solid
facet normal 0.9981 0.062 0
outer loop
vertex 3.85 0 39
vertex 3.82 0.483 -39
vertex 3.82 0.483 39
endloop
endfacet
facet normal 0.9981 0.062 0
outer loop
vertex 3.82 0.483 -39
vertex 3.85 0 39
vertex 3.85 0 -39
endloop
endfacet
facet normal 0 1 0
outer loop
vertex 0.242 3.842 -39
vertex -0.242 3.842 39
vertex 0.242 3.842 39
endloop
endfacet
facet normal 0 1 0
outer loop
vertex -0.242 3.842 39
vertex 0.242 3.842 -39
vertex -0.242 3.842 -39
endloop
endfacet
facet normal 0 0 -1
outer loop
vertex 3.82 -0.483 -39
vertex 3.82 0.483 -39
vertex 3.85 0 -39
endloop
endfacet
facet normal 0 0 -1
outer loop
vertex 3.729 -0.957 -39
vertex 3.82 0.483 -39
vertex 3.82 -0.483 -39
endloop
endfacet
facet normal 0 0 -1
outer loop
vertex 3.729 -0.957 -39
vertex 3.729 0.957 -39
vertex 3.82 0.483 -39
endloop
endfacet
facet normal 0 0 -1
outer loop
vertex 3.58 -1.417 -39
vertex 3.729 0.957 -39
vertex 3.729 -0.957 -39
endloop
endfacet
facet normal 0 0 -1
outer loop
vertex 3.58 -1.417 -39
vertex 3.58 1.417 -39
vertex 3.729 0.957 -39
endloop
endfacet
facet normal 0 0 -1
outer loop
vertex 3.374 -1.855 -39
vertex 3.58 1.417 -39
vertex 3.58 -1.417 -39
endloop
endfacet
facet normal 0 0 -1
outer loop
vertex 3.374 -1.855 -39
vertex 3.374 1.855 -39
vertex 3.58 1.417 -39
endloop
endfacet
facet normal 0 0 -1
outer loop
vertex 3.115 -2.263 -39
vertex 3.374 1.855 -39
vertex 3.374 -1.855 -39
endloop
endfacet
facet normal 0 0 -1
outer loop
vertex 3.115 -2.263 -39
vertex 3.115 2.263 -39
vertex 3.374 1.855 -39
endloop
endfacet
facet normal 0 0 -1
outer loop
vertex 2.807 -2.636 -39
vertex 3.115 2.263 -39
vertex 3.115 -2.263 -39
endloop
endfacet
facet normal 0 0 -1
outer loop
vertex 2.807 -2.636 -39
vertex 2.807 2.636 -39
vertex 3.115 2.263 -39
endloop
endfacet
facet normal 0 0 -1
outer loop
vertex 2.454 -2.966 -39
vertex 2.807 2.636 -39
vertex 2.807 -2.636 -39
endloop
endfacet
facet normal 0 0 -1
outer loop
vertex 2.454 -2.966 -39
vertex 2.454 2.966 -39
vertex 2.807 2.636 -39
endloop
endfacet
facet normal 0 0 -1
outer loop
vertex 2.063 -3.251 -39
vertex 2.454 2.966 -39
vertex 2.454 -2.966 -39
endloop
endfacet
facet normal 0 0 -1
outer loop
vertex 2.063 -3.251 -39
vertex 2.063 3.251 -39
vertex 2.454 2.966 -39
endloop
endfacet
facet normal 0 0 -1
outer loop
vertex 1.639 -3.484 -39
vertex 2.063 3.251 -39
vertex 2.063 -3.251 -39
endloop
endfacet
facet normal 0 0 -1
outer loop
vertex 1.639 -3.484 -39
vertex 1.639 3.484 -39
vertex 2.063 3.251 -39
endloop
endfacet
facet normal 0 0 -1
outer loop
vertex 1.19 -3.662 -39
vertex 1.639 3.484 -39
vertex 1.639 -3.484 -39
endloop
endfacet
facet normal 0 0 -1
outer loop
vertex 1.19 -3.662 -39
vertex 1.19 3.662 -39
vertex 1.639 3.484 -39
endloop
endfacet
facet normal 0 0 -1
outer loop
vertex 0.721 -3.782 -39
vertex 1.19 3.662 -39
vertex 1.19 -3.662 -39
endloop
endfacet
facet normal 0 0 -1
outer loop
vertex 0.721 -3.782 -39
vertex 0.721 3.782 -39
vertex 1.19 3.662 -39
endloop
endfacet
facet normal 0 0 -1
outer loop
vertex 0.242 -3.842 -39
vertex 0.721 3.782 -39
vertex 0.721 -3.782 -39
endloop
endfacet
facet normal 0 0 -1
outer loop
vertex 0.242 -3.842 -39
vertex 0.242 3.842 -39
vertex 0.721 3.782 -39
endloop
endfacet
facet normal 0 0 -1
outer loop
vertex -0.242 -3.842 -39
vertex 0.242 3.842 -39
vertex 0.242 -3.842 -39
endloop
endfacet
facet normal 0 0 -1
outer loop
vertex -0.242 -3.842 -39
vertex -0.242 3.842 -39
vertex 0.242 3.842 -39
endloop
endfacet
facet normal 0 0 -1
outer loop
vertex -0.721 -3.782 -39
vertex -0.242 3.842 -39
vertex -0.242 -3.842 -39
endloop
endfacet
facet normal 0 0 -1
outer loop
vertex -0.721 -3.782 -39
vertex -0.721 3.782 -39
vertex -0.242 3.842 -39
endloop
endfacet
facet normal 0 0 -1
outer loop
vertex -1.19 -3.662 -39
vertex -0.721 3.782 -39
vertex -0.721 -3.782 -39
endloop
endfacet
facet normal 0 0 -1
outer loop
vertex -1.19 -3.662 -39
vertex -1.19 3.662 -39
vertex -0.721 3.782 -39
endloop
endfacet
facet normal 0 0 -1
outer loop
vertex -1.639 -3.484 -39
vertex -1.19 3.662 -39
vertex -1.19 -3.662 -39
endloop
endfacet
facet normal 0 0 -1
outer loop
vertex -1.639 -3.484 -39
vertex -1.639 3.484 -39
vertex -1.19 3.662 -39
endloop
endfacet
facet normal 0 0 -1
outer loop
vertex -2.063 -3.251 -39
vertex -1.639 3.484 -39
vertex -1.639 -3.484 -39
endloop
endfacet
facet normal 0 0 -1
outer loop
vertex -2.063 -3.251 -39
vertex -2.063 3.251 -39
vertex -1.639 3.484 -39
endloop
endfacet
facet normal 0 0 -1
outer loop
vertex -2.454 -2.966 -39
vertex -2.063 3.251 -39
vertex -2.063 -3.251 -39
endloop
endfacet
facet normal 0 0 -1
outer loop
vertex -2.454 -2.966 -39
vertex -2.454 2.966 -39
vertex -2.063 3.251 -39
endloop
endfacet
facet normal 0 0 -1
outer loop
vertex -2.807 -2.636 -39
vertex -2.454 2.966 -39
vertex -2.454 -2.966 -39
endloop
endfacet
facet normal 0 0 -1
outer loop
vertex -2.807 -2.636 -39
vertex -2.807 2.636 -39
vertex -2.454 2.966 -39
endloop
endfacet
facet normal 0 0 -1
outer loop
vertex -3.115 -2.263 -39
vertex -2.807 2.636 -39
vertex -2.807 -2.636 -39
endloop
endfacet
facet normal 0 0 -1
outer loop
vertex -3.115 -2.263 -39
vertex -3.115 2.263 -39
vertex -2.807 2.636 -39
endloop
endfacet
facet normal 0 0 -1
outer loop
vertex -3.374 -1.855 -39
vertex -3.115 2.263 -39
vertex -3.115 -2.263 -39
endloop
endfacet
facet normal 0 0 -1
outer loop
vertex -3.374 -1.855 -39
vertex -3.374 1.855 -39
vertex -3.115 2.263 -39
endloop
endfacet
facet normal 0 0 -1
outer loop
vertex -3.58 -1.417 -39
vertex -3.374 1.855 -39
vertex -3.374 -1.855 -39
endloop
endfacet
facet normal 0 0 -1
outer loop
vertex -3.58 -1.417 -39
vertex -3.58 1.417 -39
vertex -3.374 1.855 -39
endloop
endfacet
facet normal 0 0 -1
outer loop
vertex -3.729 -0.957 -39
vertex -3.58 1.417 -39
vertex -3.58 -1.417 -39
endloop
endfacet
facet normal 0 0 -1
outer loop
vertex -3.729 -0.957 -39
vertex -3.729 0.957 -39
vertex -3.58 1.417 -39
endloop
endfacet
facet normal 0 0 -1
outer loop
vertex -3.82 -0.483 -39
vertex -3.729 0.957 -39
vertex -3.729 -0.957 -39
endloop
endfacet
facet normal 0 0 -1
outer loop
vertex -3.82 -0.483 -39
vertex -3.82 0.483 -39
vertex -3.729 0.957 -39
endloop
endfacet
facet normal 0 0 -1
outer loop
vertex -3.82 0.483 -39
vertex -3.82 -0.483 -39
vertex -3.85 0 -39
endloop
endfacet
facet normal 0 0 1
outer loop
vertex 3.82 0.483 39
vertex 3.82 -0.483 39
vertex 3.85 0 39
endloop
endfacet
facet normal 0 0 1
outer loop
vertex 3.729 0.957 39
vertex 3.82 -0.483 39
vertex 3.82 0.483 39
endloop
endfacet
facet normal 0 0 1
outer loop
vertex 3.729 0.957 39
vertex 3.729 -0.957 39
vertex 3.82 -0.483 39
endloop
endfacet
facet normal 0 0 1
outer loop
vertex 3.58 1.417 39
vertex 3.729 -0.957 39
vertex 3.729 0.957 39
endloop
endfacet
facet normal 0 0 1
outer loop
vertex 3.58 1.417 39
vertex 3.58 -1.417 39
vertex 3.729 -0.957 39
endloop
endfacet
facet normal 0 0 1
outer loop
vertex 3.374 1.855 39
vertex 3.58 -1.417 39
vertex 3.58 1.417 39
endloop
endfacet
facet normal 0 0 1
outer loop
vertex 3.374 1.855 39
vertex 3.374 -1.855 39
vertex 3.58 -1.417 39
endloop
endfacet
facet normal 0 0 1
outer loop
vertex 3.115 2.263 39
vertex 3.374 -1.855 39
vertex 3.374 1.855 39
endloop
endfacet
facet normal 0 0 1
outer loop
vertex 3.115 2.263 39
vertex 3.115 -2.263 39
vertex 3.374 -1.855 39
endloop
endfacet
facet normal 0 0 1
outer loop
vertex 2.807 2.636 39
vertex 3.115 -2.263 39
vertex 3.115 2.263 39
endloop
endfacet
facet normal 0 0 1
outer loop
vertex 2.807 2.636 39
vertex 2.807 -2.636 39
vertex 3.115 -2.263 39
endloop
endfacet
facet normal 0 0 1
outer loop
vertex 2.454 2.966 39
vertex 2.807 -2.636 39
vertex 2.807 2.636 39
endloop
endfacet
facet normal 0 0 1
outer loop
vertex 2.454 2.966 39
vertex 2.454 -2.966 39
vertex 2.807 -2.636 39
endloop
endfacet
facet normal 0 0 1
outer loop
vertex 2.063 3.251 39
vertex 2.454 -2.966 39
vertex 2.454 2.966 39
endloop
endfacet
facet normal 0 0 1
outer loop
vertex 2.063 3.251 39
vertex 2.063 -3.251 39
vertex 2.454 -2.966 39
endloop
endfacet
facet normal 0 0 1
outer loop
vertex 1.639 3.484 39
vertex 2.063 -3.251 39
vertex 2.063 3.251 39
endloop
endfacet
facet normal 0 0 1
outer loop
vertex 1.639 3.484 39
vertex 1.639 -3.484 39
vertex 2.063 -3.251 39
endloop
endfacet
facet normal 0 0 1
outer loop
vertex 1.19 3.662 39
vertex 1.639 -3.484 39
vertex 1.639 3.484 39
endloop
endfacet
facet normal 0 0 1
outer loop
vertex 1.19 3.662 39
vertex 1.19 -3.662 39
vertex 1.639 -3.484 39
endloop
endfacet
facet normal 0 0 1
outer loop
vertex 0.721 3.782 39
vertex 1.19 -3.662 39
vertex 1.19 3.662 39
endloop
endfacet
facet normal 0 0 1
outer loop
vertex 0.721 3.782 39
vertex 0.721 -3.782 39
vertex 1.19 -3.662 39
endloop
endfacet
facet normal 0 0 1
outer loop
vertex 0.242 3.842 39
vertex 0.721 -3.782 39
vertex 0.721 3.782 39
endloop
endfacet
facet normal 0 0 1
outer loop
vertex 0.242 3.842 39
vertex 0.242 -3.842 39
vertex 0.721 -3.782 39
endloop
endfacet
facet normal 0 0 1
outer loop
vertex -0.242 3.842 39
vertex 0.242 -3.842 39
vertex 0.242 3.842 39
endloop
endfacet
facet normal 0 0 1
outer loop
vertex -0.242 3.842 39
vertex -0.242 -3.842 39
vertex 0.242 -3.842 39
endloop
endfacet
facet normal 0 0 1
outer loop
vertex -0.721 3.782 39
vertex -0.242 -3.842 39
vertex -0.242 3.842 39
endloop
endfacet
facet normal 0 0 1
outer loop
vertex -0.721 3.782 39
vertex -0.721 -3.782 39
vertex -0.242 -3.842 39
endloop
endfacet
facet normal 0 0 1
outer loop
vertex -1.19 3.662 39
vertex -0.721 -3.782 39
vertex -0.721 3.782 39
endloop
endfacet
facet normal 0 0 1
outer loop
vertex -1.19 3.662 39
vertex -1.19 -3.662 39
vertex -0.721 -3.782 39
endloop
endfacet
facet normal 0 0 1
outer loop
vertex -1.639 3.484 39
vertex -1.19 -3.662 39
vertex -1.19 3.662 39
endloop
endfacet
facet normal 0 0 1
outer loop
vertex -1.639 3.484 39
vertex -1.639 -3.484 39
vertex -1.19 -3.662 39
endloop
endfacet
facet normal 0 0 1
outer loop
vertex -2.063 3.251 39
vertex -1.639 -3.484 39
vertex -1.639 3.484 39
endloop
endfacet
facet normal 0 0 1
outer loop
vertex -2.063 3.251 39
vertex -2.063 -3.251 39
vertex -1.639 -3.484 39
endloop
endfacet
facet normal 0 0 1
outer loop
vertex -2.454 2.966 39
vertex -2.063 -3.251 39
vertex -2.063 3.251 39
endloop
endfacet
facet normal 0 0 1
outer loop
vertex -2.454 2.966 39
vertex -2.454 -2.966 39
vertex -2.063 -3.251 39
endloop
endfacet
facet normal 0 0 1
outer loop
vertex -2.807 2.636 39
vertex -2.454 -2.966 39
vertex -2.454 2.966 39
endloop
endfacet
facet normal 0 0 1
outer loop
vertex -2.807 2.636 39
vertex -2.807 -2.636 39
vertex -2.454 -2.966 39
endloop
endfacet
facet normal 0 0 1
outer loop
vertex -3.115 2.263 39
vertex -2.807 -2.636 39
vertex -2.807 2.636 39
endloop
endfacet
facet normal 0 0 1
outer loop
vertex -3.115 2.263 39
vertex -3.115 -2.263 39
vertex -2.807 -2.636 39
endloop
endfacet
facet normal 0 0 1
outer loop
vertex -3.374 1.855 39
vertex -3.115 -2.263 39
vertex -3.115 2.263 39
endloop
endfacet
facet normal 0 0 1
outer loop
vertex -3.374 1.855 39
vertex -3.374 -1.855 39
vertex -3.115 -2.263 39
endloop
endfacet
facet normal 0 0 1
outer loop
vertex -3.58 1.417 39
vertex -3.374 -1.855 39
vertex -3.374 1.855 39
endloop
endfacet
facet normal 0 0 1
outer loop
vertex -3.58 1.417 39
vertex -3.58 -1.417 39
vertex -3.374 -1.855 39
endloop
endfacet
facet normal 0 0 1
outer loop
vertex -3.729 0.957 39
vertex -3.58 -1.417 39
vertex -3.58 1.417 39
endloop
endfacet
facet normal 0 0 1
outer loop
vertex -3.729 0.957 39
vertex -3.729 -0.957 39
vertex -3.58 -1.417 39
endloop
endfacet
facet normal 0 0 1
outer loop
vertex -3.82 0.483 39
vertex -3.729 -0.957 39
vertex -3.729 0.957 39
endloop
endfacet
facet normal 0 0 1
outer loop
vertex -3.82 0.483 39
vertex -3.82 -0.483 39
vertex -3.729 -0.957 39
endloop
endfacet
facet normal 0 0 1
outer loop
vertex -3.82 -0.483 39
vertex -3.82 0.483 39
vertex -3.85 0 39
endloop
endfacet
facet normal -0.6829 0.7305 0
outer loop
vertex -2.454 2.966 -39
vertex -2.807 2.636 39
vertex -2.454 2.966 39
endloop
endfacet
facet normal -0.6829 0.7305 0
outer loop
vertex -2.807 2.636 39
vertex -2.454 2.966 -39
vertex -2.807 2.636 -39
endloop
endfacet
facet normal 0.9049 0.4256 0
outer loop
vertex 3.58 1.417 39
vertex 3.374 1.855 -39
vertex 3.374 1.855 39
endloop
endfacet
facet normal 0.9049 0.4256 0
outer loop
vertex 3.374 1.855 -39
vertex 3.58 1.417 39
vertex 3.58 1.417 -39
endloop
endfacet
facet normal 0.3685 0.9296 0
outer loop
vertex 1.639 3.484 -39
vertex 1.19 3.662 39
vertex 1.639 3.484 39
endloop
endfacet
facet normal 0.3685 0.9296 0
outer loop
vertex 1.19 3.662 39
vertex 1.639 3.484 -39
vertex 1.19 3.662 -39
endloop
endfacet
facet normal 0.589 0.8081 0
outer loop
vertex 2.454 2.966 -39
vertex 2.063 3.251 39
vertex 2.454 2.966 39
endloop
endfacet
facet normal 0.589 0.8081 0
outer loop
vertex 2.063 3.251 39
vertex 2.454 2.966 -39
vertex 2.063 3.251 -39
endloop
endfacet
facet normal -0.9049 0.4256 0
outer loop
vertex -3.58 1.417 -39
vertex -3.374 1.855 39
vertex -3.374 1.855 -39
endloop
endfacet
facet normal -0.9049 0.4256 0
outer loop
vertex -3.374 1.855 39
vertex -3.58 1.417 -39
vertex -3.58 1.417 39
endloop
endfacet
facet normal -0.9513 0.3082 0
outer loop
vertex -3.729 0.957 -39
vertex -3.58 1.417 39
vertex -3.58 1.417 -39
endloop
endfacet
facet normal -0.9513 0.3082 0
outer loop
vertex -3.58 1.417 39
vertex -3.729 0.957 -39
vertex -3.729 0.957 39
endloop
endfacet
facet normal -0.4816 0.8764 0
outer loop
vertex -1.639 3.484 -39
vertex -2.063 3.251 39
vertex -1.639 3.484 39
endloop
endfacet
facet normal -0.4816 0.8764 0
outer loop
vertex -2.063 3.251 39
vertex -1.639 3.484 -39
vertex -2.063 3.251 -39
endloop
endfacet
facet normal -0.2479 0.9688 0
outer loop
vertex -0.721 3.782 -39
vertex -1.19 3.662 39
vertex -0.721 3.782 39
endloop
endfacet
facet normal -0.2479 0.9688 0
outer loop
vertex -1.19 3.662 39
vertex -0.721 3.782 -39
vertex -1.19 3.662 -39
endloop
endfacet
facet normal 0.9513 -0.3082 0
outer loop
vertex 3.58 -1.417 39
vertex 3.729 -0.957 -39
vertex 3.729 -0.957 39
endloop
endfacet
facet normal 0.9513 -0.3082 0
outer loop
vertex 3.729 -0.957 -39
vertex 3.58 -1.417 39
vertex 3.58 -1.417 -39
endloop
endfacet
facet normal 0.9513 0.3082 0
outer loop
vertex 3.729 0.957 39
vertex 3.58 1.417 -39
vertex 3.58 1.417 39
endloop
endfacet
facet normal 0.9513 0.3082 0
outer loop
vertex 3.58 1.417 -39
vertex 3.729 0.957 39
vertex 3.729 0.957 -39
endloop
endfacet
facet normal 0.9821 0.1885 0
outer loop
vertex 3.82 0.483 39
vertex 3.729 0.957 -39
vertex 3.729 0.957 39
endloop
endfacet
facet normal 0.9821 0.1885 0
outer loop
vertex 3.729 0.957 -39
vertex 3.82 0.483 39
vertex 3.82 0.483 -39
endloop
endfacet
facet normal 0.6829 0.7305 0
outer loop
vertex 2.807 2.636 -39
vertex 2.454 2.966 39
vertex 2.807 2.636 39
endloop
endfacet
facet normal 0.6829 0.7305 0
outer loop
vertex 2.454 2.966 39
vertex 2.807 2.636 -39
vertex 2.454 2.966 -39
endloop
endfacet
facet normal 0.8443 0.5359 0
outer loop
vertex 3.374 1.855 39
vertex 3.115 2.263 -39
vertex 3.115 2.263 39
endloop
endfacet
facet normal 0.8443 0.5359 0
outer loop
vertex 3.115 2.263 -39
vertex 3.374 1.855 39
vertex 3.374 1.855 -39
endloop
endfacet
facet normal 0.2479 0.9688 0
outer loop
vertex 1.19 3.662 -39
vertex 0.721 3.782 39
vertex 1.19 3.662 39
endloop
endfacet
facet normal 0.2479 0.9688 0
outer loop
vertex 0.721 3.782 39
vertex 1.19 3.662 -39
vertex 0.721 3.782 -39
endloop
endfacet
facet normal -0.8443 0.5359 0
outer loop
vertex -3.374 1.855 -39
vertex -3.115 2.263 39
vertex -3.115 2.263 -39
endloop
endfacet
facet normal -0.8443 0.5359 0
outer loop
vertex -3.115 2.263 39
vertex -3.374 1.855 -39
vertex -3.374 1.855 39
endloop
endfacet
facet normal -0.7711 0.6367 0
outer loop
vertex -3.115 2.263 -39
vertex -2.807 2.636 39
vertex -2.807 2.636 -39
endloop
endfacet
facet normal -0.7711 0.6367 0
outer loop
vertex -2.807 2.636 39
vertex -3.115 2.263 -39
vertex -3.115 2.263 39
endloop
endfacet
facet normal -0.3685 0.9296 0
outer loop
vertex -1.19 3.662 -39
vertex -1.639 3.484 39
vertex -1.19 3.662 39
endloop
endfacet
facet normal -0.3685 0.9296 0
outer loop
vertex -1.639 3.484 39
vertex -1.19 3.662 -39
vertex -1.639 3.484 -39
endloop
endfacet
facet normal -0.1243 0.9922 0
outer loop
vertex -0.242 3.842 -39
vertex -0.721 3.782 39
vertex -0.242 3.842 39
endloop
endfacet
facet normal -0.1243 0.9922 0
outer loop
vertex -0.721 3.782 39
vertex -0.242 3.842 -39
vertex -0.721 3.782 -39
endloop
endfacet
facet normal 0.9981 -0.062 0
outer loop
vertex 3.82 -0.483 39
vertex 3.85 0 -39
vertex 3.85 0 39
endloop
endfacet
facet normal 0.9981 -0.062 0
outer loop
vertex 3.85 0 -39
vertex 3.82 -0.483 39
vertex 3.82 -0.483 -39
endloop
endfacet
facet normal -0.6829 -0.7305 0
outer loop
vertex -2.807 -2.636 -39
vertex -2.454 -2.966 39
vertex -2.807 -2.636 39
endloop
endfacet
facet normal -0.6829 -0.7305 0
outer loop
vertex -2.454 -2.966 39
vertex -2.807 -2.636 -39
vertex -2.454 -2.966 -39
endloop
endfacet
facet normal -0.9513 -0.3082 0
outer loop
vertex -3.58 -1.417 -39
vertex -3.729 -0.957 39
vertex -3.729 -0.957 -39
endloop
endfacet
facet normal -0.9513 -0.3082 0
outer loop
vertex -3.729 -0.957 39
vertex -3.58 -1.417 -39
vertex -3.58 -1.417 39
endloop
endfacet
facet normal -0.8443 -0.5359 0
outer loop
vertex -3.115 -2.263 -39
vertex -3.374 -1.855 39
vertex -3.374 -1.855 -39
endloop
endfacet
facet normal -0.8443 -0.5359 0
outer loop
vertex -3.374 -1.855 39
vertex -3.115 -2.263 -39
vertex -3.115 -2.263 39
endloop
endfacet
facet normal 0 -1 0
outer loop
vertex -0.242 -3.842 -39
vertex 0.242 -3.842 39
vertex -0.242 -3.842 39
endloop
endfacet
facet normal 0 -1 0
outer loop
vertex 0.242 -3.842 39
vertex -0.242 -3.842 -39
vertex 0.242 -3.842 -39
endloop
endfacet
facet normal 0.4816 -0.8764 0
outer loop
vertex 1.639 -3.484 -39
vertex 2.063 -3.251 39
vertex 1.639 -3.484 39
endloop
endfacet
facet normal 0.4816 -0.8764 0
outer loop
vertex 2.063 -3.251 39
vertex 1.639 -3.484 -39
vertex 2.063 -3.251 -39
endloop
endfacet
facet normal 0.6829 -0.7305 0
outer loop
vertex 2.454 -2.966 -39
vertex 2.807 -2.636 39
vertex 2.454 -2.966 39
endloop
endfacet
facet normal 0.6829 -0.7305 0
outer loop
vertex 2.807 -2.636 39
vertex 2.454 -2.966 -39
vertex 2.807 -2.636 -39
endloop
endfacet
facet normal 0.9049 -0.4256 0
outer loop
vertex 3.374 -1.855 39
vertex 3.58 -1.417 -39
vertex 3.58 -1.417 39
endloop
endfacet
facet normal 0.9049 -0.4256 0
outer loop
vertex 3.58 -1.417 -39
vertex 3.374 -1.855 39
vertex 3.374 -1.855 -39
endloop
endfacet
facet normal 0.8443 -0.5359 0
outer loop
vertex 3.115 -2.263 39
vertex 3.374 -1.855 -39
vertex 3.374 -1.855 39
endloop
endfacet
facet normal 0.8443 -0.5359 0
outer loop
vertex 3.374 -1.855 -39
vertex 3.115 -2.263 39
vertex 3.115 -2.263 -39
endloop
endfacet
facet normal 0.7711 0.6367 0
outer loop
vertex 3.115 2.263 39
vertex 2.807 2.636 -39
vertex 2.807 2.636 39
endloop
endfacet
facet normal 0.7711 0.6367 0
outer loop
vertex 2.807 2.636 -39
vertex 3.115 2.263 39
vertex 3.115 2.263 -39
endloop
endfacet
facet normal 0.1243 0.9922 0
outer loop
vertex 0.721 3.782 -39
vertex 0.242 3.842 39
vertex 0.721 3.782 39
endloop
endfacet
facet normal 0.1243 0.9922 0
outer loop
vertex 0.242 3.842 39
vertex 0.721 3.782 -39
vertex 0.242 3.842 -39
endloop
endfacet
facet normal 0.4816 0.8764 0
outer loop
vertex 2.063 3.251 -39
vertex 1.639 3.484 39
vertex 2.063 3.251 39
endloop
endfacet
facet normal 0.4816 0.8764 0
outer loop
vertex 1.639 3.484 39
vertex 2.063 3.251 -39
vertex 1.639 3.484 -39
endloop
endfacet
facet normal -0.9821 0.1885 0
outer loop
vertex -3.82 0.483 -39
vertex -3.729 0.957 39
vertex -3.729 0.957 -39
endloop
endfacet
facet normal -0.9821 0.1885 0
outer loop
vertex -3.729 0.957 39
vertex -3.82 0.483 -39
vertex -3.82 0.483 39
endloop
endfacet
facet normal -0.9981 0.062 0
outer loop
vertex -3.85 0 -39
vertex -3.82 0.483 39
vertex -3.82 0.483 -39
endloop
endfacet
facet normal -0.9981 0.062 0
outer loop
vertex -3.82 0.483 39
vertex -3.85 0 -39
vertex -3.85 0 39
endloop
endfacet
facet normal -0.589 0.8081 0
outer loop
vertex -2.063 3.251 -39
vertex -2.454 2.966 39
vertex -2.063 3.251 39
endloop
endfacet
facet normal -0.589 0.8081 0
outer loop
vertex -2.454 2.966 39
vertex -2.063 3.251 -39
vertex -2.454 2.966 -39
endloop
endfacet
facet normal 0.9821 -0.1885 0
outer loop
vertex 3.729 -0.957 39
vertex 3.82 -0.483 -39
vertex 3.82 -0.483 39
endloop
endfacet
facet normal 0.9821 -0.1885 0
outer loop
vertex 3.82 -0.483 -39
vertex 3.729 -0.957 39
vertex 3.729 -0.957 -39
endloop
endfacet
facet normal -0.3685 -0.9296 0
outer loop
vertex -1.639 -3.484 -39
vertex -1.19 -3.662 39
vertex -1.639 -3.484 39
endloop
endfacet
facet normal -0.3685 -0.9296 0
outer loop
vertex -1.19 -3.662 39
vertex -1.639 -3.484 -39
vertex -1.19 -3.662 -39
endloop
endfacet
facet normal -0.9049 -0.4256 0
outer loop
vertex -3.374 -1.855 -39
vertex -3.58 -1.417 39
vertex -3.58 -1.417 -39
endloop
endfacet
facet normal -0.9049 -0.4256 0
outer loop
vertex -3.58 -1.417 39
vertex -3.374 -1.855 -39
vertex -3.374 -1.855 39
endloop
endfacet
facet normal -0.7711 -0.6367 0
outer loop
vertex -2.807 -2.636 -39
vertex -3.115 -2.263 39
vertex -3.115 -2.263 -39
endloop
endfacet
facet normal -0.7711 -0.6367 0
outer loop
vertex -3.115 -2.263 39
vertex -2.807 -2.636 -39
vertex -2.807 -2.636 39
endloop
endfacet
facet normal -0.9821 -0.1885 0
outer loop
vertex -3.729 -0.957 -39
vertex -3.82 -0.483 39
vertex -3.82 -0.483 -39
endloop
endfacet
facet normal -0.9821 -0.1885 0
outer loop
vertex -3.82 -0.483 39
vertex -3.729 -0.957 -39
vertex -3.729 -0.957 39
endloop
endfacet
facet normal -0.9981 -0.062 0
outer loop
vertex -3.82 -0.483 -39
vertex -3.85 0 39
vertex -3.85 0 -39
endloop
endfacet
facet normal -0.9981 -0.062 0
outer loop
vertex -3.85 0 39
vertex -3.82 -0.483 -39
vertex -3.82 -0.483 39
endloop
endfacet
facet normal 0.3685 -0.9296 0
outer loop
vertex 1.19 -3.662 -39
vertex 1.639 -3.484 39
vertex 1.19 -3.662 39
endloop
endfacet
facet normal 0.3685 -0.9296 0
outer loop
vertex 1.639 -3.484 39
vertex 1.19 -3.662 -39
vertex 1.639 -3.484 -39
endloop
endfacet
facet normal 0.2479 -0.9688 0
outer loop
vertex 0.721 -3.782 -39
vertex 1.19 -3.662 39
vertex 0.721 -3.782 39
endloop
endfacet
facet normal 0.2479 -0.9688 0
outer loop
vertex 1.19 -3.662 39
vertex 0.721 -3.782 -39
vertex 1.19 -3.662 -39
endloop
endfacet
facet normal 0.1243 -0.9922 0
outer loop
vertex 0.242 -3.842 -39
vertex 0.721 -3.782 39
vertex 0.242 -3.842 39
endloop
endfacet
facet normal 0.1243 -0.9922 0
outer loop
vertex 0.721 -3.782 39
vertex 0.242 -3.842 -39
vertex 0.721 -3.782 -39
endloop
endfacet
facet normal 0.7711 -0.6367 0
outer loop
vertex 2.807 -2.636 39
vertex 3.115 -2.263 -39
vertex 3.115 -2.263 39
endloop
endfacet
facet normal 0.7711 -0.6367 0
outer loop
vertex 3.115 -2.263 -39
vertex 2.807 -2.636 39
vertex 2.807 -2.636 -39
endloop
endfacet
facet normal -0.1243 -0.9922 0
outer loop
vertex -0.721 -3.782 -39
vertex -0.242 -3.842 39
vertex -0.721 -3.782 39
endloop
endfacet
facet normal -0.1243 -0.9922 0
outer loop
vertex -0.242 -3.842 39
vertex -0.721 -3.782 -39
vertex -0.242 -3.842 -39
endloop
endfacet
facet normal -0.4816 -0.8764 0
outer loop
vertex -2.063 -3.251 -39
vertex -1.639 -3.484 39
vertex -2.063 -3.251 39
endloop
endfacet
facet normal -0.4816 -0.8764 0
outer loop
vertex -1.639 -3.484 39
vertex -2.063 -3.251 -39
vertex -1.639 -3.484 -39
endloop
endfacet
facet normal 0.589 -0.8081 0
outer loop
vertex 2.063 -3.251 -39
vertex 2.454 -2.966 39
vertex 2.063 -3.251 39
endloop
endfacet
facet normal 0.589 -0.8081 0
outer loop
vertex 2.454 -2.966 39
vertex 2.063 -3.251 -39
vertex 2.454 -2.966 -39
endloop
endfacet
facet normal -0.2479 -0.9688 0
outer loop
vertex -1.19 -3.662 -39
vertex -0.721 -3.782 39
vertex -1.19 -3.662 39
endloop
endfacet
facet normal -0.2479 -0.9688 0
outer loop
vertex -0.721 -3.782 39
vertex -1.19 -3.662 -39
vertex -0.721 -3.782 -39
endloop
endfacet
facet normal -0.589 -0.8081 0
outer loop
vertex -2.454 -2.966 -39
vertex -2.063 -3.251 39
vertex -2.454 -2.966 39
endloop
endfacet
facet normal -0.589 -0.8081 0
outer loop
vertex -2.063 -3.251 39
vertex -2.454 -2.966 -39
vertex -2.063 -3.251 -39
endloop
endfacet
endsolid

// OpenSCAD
$fn = 50;


difference() {
	union() {
		translate(v = [0, 0, -39.0000000000]) {
			cylinder(h = 78, r = 3.8500000000);
		}
	}
	union() {
		translate(v = [0, 0, -100.0000000000]) {
			cylinder(h = 200, r = 0);
		}
	}
}
